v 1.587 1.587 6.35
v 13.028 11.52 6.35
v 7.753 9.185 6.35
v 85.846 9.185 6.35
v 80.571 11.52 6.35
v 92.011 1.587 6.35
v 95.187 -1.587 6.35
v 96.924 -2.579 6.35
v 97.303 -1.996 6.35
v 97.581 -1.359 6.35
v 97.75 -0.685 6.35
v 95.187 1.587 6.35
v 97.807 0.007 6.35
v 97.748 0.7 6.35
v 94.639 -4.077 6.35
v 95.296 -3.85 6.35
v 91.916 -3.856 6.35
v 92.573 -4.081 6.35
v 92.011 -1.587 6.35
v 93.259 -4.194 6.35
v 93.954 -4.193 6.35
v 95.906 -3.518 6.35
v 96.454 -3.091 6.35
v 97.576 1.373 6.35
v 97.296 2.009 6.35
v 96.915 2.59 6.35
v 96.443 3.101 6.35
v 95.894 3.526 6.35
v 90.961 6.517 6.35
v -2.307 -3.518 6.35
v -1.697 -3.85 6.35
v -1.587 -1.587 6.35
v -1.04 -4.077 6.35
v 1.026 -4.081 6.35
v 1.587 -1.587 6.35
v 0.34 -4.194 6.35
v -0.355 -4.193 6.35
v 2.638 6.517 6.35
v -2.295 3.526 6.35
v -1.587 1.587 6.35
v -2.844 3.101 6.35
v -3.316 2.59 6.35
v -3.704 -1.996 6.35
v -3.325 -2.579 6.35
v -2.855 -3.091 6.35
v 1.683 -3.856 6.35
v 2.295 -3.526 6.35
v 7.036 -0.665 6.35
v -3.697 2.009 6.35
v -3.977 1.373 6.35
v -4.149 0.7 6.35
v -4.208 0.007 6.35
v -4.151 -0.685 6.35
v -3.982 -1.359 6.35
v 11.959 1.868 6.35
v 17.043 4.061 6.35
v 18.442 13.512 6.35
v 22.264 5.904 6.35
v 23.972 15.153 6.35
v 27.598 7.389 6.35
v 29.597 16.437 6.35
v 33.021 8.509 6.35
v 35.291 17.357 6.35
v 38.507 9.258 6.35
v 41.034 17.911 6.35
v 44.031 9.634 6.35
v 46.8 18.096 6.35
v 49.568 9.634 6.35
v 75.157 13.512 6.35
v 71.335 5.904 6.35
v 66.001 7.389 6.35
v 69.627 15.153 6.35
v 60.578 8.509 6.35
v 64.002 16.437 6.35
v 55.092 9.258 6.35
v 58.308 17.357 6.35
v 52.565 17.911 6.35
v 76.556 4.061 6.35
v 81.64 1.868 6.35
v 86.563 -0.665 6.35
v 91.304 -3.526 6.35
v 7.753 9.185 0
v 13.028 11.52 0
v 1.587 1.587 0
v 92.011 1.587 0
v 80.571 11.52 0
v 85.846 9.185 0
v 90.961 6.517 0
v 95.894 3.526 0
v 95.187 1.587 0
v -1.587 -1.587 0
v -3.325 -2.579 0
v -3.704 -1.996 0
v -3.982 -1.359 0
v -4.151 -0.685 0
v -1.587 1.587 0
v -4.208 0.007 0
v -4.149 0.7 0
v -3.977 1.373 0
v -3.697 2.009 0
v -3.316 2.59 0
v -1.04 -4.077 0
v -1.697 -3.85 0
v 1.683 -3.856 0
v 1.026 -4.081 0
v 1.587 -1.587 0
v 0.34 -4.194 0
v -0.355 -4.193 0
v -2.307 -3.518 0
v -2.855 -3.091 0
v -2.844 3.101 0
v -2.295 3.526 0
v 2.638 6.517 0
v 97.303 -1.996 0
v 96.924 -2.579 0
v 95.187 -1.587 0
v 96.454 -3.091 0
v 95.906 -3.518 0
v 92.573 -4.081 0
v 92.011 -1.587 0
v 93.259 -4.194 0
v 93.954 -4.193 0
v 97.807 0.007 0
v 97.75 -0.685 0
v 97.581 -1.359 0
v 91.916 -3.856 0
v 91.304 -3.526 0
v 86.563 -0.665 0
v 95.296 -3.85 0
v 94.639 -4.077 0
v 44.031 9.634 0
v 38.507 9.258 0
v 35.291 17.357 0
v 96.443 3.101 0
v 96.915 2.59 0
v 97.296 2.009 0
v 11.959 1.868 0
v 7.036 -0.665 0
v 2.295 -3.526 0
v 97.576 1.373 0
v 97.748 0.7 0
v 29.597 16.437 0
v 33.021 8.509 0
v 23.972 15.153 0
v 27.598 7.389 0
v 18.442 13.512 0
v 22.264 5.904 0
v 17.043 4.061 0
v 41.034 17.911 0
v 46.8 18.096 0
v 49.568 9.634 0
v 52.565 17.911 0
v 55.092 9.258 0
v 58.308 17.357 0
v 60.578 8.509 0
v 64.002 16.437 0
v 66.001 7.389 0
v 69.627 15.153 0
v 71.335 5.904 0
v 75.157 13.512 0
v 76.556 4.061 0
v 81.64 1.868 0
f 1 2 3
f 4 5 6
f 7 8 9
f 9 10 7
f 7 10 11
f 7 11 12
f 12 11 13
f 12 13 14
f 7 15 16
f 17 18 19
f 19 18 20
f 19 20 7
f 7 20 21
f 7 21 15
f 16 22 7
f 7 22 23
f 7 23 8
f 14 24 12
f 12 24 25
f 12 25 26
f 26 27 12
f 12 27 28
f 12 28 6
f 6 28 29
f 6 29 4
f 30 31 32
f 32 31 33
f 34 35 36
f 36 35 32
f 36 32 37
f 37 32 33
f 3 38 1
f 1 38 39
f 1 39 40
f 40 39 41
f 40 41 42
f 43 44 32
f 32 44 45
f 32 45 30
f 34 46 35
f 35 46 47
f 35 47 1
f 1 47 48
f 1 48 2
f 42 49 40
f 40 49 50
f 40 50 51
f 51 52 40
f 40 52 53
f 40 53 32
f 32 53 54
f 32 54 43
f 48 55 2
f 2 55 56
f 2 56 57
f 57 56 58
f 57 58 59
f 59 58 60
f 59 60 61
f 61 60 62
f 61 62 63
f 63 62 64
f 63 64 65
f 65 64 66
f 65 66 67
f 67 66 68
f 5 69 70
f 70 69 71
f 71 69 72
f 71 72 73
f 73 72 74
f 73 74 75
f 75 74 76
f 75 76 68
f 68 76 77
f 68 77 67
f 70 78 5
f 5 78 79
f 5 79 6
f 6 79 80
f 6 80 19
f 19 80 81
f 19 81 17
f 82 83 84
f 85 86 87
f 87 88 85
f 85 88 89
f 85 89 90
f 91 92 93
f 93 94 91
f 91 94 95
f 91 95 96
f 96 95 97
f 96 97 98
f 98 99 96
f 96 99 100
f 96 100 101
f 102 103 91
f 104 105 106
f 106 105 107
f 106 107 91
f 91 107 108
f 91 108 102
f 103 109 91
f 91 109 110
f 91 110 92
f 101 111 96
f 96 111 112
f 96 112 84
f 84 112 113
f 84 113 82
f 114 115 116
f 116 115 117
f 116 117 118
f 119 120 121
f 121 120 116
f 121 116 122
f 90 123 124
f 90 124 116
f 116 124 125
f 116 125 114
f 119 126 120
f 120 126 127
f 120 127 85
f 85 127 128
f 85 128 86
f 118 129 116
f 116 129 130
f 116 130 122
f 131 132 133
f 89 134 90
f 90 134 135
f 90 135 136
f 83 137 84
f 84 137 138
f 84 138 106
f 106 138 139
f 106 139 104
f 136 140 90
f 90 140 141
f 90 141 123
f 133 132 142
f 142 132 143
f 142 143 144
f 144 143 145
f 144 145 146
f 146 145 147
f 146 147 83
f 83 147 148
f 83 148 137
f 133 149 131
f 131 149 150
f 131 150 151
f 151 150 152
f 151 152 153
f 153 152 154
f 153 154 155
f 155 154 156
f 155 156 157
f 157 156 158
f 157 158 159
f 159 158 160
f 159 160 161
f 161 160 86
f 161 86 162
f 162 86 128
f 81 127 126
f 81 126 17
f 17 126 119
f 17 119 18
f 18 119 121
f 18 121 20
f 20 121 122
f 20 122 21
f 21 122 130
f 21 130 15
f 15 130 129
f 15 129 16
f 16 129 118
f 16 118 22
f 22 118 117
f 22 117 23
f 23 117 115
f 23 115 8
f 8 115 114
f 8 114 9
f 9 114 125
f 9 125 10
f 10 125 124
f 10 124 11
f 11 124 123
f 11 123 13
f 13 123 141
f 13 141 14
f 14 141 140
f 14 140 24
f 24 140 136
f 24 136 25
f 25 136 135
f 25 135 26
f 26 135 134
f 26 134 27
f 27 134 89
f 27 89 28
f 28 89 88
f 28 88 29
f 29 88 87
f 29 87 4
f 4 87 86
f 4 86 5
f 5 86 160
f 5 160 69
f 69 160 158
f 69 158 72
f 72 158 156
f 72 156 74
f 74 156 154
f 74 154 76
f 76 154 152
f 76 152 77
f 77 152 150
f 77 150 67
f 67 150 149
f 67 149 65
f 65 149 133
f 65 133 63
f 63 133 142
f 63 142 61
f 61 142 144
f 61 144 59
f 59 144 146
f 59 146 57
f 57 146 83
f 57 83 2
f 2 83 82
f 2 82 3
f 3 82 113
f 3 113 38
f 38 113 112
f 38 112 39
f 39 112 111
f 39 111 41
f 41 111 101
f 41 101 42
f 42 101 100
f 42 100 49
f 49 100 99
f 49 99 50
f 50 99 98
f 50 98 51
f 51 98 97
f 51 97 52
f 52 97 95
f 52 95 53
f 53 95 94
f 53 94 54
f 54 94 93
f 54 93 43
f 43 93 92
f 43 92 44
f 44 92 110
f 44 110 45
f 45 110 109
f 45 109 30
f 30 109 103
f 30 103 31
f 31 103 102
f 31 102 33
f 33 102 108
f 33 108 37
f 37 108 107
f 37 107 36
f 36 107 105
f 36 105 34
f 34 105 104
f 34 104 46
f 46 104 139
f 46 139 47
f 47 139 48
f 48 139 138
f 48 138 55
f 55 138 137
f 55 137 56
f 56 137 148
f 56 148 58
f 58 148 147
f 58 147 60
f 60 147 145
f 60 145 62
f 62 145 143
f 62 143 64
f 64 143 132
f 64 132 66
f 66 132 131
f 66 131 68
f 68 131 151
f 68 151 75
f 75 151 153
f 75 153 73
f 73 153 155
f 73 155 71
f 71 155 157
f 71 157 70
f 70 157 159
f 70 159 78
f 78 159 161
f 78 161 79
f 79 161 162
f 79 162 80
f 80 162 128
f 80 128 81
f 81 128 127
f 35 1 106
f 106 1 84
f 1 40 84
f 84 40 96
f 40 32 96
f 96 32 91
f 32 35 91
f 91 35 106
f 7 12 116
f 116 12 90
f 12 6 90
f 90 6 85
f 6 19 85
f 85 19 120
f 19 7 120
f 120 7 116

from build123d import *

# Parameters (mm, degrees)
SKETCH1_W           = 3.175
SKETCH1_H           = 3.175
BOSS_EXTRUDE1_DEPTH = 6.35


with BuildPart() as part:
    # Sketch1 → Boss-Extrude1 (new body)
    with BuildSketch(Plane.XY):
        with BuildLine():
            ThreePointArc((95.894192869, 3.526467972), (46.7995, 18.096007393), (-2.295192869, 3.526467972))
            ThreePointArc((-2.295192869, 3.526467972), (-3.526467972, -2.295192869), (2.295192869, -3.526467972))
            ThreePointArc((2.295192869, -3.526467972), (46.7995, 9.68081003), (91.303807131, -3.526467972))
            ThreePointArc((91.303807131, -3.526467972), (97.125467972, -2.295192869), (95.894192869, 3.526467972))
        make_face()
        with Locations((93.599, 0)):
            Rectangle(SKETCH1_W, SKETCH1_H, mode=Mode.SUBTRACT)
        Rectangle(SKETCH1_W, SKETCH1_H, mode=Mode.SUBTRACT)
    extrude(amount=BOSS_EXTRUDE1_DEPTH)


solid = part.part
